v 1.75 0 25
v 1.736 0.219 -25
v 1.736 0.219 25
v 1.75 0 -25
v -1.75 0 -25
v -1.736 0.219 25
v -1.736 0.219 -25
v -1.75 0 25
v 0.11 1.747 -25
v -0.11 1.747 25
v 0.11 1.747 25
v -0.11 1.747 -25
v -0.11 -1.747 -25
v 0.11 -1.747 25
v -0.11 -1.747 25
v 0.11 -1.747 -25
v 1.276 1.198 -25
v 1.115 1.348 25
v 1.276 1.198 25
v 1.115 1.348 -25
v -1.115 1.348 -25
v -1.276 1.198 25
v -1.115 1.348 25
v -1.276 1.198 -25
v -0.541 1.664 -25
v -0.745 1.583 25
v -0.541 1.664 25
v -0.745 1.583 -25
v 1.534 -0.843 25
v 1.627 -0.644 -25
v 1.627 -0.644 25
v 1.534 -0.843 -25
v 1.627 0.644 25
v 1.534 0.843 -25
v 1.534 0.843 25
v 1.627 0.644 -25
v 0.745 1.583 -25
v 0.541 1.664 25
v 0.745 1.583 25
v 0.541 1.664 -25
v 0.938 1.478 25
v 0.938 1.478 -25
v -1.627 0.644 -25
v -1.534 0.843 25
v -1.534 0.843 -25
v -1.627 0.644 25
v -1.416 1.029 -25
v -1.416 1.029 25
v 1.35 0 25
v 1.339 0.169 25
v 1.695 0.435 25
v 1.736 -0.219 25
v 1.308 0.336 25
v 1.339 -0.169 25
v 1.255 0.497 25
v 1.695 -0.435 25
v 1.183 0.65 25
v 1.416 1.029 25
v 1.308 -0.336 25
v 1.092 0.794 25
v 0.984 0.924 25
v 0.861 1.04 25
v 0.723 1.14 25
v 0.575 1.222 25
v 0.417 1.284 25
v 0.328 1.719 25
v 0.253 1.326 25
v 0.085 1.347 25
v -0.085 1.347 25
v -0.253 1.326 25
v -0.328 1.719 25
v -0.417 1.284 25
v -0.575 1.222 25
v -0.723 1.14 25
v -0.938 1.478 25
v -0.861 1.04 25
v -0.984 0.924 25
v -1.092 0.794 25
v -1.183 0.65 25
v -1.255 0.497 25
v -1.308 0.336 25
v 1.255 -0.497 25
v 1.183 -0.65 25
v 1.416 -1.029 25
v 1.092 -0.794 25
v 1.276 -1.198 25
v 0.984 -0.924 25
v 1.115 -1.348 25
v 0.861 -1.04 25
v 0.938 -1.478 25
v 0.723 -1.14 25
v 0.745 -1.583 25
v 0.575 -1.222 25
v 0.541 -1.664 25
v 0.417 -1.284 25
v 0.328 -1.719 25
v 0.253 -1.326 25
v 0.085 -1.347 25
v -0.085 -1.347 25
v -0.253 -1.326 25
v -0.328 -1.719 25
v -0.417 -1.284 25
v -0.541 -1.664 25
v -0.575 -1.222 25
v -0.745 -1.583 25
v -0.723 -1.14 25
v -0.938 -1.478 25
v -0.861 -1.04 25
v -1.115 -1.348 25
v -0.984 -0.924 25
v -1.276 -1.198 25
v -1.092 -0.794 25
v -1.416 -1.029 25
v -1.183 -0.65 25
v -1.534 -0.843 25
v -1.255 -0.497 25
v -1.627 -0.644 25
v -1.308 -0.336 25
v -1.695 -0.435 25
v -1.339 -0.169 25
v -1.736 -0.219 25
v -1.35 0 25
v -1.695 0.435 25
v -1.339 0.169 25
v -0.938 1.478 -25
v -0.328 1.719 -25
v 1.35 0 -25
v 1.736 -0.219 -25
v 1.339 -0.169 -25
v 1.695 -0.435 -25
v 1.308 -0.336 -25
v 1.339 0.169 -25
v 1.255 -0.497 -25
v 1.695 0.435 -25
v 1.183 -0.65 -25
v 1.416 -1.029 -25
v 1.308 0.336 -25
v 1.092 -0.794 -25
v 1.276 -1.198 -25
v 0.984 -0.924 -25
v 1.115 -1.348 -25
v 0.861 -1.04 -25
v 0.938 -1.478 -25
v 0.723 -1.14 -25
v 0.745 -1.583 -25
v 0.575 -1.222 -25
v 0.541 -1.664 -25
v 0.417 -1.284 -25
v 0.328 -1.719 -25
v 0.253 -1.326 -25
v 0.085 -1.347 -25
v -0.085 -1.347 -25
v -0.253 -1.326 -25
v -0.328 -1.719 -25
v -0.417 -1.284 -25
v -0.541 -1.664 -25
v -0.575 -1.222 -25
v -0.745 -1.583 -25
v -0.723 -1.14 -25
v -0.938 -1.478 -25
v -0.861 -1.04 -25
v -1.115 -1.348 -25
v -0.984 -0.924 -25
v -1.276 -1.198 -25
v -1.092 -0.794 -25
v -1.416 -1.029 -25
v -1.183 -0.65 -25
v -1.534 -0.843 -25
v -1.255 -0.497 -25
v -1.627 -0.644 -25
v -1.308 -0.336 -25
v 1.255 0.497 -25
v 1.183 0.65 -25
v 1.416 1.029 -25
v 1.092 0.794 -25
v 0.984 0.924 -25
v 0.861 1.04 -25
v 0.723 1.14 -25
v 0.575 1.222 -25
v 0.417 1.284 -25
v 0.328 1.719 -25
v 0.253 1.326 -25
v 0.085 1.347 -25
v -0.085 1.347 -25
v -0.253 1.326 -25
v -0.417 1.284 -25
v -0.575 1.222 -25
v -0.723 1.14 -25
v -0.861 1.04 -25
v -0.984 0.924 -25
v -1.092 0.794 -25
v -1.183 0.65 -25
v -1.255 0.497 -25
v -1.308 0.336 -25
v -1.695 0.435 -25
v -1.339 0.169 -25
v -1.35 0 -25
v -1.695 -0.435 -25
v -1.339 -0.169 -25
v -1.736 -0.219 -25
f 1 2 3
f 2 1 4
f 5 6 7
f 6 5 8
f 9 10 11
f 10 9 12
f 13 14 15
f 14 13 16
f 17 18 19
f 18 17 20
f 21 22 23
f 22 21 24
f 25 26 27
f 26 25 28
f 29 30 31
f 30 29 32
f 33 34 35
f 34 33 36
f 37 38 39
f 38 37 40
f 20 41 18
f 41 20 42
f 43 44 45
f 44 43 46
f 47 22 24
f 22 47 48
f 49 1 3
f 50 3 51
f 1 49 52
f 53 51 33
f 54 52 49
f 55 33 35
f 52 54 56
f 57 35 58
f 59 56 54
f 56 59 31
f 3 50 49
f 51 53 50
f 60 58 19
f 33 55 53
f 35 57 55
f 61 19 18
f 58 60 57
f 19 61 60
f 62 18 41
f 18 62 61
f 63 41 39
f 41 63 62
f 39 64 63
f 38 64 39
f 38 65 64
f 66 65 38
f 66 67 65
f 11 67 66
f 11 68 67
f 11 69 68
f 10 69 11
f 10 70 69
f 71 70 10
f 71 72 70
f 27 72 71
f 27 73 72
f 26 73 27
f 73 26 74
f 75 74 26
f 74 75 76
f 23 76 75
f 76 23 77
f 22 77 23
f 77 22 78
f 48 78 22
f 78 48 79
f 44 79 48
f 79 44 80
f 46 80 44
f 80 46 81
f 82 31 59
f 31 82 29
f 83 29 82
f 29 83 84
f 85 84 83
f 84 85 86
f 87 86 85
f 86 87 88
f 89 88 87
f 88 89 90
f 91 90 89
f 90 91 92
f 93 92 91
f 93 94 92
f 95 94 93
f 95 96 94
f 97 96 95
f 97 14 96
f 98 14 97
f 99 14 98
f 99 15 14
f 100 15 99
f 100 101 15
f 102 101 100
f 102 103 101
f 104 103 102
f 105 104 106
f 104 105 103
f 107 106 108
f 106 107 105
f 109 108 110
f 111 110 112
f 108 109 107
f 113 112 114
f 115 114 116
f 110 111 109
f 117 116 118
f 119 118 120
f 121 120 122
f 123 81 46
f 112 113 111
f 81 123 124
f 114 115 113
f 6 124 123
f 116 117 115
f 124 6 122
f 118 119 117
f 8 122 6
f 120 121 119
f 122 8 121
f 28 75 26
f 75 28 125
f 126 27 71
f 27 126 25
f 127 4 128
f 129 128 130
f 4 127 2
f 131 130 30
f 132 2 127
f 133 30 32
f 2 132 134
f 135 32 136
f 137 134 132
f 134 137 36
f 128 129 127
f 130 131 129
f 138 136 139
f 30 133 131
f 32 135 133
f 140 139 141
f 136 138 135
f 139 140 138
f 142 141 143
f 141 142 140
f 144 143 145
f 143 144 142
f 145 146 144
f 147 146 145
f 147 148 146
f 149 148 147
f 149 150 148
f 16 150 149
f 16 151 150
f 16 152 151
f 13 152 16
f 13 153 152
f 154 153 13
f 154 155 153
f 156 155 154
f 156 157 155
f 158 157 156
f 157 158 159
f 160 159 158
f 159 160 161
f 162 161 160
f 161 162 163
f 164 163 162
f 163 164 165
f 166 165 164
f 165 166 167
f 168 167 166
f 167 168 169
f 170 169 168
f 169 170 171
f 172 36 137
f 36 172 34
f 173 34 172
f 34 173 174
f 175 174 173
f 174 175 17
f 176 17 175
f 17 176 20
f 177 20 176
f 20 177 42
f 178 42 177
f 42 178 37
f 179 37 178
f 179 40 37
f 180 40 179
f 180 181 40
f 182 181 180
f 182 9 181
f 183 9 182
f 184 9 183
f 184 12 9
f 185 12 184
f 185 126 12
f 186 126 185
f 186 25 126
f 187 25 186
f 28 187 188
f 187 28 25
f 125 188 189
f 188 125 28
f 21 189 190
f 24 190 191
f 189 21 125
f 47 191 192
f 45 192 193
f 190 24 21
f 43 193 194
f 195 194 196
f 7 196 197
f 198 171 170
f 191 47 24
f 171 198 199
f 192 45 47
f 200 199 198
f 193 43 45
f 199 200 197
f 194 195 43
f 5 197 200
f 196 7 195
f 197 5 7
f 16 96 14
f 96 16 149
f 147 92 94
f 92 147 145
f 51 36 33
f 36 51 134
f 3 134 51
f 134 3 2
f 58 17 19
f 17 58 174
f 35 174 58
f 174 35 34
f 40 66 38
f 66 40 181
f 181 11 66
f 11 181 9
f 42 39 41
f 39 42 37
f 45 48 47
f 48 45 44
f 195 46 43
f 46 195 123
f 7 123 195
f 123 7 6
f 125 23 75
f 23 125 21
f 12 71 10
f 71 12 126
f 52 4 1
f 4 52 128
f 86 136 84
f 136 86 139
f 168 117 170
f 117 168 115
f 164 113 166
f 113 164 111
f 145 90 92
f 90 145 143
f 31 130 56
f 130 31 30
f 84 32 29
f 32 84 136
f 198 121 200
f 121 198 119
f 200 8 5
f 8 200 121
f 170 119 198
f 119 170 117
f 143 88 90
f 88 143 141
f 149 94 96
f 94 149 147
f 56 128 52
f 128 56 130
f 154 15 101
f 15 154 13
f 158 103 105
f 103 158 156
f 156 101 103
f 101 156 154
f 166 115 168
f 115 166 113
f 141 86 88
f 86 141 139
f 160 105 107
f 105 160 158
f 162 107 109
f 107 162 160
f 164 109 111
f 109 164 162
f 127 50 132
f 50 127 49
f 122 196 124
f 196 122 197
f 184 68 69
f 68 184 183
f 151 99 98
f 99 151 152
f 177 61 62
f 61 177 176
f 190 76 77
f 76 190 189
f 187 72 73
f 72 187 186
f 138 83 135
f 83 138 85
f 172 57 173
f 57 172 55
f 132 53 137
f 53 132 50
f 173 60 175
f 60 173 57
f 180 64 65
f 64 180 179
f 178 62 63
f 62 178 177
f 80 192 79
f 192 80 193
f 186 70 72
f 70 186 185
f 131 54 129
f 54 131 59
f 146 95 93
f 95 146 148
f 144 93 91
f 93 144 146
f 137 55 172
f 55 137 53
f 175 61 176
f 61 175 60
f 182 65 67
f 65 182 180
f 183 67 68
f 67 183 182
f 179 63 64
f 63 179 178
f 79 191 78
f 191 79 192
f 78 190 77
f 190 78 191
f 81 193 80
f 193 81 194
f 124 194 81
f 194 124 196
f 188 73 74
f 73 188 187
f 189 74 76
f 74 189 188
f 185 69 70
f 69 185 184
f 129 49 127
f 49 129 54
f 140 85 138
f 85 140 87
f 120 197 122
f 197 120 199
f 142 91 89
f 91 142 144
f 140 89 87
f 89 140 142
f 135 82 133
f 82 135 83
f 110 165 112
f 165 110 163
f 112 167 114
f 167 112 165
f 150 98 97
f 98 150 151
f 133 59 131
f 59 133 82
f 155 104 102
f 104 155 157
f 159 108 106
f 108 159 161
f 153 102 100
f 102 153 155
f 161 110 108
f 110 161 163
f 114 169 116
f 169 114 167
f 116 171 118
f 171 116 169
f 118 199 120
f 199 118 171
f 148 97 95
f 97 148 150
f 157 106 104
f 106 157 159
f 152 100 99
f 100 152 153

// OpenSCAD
$fn = 50;


difference() {
	union() {
		translate(v = [0, 0, -25.0000000000]) {
			cylinder(h = 50, r = 1.7500000000);
		}
	}
	union() {
		translate(v = [0, 0, -100.0000000000]) {
			cylinder(h = 200, r = 1.3500000000);
		}
	}
}
